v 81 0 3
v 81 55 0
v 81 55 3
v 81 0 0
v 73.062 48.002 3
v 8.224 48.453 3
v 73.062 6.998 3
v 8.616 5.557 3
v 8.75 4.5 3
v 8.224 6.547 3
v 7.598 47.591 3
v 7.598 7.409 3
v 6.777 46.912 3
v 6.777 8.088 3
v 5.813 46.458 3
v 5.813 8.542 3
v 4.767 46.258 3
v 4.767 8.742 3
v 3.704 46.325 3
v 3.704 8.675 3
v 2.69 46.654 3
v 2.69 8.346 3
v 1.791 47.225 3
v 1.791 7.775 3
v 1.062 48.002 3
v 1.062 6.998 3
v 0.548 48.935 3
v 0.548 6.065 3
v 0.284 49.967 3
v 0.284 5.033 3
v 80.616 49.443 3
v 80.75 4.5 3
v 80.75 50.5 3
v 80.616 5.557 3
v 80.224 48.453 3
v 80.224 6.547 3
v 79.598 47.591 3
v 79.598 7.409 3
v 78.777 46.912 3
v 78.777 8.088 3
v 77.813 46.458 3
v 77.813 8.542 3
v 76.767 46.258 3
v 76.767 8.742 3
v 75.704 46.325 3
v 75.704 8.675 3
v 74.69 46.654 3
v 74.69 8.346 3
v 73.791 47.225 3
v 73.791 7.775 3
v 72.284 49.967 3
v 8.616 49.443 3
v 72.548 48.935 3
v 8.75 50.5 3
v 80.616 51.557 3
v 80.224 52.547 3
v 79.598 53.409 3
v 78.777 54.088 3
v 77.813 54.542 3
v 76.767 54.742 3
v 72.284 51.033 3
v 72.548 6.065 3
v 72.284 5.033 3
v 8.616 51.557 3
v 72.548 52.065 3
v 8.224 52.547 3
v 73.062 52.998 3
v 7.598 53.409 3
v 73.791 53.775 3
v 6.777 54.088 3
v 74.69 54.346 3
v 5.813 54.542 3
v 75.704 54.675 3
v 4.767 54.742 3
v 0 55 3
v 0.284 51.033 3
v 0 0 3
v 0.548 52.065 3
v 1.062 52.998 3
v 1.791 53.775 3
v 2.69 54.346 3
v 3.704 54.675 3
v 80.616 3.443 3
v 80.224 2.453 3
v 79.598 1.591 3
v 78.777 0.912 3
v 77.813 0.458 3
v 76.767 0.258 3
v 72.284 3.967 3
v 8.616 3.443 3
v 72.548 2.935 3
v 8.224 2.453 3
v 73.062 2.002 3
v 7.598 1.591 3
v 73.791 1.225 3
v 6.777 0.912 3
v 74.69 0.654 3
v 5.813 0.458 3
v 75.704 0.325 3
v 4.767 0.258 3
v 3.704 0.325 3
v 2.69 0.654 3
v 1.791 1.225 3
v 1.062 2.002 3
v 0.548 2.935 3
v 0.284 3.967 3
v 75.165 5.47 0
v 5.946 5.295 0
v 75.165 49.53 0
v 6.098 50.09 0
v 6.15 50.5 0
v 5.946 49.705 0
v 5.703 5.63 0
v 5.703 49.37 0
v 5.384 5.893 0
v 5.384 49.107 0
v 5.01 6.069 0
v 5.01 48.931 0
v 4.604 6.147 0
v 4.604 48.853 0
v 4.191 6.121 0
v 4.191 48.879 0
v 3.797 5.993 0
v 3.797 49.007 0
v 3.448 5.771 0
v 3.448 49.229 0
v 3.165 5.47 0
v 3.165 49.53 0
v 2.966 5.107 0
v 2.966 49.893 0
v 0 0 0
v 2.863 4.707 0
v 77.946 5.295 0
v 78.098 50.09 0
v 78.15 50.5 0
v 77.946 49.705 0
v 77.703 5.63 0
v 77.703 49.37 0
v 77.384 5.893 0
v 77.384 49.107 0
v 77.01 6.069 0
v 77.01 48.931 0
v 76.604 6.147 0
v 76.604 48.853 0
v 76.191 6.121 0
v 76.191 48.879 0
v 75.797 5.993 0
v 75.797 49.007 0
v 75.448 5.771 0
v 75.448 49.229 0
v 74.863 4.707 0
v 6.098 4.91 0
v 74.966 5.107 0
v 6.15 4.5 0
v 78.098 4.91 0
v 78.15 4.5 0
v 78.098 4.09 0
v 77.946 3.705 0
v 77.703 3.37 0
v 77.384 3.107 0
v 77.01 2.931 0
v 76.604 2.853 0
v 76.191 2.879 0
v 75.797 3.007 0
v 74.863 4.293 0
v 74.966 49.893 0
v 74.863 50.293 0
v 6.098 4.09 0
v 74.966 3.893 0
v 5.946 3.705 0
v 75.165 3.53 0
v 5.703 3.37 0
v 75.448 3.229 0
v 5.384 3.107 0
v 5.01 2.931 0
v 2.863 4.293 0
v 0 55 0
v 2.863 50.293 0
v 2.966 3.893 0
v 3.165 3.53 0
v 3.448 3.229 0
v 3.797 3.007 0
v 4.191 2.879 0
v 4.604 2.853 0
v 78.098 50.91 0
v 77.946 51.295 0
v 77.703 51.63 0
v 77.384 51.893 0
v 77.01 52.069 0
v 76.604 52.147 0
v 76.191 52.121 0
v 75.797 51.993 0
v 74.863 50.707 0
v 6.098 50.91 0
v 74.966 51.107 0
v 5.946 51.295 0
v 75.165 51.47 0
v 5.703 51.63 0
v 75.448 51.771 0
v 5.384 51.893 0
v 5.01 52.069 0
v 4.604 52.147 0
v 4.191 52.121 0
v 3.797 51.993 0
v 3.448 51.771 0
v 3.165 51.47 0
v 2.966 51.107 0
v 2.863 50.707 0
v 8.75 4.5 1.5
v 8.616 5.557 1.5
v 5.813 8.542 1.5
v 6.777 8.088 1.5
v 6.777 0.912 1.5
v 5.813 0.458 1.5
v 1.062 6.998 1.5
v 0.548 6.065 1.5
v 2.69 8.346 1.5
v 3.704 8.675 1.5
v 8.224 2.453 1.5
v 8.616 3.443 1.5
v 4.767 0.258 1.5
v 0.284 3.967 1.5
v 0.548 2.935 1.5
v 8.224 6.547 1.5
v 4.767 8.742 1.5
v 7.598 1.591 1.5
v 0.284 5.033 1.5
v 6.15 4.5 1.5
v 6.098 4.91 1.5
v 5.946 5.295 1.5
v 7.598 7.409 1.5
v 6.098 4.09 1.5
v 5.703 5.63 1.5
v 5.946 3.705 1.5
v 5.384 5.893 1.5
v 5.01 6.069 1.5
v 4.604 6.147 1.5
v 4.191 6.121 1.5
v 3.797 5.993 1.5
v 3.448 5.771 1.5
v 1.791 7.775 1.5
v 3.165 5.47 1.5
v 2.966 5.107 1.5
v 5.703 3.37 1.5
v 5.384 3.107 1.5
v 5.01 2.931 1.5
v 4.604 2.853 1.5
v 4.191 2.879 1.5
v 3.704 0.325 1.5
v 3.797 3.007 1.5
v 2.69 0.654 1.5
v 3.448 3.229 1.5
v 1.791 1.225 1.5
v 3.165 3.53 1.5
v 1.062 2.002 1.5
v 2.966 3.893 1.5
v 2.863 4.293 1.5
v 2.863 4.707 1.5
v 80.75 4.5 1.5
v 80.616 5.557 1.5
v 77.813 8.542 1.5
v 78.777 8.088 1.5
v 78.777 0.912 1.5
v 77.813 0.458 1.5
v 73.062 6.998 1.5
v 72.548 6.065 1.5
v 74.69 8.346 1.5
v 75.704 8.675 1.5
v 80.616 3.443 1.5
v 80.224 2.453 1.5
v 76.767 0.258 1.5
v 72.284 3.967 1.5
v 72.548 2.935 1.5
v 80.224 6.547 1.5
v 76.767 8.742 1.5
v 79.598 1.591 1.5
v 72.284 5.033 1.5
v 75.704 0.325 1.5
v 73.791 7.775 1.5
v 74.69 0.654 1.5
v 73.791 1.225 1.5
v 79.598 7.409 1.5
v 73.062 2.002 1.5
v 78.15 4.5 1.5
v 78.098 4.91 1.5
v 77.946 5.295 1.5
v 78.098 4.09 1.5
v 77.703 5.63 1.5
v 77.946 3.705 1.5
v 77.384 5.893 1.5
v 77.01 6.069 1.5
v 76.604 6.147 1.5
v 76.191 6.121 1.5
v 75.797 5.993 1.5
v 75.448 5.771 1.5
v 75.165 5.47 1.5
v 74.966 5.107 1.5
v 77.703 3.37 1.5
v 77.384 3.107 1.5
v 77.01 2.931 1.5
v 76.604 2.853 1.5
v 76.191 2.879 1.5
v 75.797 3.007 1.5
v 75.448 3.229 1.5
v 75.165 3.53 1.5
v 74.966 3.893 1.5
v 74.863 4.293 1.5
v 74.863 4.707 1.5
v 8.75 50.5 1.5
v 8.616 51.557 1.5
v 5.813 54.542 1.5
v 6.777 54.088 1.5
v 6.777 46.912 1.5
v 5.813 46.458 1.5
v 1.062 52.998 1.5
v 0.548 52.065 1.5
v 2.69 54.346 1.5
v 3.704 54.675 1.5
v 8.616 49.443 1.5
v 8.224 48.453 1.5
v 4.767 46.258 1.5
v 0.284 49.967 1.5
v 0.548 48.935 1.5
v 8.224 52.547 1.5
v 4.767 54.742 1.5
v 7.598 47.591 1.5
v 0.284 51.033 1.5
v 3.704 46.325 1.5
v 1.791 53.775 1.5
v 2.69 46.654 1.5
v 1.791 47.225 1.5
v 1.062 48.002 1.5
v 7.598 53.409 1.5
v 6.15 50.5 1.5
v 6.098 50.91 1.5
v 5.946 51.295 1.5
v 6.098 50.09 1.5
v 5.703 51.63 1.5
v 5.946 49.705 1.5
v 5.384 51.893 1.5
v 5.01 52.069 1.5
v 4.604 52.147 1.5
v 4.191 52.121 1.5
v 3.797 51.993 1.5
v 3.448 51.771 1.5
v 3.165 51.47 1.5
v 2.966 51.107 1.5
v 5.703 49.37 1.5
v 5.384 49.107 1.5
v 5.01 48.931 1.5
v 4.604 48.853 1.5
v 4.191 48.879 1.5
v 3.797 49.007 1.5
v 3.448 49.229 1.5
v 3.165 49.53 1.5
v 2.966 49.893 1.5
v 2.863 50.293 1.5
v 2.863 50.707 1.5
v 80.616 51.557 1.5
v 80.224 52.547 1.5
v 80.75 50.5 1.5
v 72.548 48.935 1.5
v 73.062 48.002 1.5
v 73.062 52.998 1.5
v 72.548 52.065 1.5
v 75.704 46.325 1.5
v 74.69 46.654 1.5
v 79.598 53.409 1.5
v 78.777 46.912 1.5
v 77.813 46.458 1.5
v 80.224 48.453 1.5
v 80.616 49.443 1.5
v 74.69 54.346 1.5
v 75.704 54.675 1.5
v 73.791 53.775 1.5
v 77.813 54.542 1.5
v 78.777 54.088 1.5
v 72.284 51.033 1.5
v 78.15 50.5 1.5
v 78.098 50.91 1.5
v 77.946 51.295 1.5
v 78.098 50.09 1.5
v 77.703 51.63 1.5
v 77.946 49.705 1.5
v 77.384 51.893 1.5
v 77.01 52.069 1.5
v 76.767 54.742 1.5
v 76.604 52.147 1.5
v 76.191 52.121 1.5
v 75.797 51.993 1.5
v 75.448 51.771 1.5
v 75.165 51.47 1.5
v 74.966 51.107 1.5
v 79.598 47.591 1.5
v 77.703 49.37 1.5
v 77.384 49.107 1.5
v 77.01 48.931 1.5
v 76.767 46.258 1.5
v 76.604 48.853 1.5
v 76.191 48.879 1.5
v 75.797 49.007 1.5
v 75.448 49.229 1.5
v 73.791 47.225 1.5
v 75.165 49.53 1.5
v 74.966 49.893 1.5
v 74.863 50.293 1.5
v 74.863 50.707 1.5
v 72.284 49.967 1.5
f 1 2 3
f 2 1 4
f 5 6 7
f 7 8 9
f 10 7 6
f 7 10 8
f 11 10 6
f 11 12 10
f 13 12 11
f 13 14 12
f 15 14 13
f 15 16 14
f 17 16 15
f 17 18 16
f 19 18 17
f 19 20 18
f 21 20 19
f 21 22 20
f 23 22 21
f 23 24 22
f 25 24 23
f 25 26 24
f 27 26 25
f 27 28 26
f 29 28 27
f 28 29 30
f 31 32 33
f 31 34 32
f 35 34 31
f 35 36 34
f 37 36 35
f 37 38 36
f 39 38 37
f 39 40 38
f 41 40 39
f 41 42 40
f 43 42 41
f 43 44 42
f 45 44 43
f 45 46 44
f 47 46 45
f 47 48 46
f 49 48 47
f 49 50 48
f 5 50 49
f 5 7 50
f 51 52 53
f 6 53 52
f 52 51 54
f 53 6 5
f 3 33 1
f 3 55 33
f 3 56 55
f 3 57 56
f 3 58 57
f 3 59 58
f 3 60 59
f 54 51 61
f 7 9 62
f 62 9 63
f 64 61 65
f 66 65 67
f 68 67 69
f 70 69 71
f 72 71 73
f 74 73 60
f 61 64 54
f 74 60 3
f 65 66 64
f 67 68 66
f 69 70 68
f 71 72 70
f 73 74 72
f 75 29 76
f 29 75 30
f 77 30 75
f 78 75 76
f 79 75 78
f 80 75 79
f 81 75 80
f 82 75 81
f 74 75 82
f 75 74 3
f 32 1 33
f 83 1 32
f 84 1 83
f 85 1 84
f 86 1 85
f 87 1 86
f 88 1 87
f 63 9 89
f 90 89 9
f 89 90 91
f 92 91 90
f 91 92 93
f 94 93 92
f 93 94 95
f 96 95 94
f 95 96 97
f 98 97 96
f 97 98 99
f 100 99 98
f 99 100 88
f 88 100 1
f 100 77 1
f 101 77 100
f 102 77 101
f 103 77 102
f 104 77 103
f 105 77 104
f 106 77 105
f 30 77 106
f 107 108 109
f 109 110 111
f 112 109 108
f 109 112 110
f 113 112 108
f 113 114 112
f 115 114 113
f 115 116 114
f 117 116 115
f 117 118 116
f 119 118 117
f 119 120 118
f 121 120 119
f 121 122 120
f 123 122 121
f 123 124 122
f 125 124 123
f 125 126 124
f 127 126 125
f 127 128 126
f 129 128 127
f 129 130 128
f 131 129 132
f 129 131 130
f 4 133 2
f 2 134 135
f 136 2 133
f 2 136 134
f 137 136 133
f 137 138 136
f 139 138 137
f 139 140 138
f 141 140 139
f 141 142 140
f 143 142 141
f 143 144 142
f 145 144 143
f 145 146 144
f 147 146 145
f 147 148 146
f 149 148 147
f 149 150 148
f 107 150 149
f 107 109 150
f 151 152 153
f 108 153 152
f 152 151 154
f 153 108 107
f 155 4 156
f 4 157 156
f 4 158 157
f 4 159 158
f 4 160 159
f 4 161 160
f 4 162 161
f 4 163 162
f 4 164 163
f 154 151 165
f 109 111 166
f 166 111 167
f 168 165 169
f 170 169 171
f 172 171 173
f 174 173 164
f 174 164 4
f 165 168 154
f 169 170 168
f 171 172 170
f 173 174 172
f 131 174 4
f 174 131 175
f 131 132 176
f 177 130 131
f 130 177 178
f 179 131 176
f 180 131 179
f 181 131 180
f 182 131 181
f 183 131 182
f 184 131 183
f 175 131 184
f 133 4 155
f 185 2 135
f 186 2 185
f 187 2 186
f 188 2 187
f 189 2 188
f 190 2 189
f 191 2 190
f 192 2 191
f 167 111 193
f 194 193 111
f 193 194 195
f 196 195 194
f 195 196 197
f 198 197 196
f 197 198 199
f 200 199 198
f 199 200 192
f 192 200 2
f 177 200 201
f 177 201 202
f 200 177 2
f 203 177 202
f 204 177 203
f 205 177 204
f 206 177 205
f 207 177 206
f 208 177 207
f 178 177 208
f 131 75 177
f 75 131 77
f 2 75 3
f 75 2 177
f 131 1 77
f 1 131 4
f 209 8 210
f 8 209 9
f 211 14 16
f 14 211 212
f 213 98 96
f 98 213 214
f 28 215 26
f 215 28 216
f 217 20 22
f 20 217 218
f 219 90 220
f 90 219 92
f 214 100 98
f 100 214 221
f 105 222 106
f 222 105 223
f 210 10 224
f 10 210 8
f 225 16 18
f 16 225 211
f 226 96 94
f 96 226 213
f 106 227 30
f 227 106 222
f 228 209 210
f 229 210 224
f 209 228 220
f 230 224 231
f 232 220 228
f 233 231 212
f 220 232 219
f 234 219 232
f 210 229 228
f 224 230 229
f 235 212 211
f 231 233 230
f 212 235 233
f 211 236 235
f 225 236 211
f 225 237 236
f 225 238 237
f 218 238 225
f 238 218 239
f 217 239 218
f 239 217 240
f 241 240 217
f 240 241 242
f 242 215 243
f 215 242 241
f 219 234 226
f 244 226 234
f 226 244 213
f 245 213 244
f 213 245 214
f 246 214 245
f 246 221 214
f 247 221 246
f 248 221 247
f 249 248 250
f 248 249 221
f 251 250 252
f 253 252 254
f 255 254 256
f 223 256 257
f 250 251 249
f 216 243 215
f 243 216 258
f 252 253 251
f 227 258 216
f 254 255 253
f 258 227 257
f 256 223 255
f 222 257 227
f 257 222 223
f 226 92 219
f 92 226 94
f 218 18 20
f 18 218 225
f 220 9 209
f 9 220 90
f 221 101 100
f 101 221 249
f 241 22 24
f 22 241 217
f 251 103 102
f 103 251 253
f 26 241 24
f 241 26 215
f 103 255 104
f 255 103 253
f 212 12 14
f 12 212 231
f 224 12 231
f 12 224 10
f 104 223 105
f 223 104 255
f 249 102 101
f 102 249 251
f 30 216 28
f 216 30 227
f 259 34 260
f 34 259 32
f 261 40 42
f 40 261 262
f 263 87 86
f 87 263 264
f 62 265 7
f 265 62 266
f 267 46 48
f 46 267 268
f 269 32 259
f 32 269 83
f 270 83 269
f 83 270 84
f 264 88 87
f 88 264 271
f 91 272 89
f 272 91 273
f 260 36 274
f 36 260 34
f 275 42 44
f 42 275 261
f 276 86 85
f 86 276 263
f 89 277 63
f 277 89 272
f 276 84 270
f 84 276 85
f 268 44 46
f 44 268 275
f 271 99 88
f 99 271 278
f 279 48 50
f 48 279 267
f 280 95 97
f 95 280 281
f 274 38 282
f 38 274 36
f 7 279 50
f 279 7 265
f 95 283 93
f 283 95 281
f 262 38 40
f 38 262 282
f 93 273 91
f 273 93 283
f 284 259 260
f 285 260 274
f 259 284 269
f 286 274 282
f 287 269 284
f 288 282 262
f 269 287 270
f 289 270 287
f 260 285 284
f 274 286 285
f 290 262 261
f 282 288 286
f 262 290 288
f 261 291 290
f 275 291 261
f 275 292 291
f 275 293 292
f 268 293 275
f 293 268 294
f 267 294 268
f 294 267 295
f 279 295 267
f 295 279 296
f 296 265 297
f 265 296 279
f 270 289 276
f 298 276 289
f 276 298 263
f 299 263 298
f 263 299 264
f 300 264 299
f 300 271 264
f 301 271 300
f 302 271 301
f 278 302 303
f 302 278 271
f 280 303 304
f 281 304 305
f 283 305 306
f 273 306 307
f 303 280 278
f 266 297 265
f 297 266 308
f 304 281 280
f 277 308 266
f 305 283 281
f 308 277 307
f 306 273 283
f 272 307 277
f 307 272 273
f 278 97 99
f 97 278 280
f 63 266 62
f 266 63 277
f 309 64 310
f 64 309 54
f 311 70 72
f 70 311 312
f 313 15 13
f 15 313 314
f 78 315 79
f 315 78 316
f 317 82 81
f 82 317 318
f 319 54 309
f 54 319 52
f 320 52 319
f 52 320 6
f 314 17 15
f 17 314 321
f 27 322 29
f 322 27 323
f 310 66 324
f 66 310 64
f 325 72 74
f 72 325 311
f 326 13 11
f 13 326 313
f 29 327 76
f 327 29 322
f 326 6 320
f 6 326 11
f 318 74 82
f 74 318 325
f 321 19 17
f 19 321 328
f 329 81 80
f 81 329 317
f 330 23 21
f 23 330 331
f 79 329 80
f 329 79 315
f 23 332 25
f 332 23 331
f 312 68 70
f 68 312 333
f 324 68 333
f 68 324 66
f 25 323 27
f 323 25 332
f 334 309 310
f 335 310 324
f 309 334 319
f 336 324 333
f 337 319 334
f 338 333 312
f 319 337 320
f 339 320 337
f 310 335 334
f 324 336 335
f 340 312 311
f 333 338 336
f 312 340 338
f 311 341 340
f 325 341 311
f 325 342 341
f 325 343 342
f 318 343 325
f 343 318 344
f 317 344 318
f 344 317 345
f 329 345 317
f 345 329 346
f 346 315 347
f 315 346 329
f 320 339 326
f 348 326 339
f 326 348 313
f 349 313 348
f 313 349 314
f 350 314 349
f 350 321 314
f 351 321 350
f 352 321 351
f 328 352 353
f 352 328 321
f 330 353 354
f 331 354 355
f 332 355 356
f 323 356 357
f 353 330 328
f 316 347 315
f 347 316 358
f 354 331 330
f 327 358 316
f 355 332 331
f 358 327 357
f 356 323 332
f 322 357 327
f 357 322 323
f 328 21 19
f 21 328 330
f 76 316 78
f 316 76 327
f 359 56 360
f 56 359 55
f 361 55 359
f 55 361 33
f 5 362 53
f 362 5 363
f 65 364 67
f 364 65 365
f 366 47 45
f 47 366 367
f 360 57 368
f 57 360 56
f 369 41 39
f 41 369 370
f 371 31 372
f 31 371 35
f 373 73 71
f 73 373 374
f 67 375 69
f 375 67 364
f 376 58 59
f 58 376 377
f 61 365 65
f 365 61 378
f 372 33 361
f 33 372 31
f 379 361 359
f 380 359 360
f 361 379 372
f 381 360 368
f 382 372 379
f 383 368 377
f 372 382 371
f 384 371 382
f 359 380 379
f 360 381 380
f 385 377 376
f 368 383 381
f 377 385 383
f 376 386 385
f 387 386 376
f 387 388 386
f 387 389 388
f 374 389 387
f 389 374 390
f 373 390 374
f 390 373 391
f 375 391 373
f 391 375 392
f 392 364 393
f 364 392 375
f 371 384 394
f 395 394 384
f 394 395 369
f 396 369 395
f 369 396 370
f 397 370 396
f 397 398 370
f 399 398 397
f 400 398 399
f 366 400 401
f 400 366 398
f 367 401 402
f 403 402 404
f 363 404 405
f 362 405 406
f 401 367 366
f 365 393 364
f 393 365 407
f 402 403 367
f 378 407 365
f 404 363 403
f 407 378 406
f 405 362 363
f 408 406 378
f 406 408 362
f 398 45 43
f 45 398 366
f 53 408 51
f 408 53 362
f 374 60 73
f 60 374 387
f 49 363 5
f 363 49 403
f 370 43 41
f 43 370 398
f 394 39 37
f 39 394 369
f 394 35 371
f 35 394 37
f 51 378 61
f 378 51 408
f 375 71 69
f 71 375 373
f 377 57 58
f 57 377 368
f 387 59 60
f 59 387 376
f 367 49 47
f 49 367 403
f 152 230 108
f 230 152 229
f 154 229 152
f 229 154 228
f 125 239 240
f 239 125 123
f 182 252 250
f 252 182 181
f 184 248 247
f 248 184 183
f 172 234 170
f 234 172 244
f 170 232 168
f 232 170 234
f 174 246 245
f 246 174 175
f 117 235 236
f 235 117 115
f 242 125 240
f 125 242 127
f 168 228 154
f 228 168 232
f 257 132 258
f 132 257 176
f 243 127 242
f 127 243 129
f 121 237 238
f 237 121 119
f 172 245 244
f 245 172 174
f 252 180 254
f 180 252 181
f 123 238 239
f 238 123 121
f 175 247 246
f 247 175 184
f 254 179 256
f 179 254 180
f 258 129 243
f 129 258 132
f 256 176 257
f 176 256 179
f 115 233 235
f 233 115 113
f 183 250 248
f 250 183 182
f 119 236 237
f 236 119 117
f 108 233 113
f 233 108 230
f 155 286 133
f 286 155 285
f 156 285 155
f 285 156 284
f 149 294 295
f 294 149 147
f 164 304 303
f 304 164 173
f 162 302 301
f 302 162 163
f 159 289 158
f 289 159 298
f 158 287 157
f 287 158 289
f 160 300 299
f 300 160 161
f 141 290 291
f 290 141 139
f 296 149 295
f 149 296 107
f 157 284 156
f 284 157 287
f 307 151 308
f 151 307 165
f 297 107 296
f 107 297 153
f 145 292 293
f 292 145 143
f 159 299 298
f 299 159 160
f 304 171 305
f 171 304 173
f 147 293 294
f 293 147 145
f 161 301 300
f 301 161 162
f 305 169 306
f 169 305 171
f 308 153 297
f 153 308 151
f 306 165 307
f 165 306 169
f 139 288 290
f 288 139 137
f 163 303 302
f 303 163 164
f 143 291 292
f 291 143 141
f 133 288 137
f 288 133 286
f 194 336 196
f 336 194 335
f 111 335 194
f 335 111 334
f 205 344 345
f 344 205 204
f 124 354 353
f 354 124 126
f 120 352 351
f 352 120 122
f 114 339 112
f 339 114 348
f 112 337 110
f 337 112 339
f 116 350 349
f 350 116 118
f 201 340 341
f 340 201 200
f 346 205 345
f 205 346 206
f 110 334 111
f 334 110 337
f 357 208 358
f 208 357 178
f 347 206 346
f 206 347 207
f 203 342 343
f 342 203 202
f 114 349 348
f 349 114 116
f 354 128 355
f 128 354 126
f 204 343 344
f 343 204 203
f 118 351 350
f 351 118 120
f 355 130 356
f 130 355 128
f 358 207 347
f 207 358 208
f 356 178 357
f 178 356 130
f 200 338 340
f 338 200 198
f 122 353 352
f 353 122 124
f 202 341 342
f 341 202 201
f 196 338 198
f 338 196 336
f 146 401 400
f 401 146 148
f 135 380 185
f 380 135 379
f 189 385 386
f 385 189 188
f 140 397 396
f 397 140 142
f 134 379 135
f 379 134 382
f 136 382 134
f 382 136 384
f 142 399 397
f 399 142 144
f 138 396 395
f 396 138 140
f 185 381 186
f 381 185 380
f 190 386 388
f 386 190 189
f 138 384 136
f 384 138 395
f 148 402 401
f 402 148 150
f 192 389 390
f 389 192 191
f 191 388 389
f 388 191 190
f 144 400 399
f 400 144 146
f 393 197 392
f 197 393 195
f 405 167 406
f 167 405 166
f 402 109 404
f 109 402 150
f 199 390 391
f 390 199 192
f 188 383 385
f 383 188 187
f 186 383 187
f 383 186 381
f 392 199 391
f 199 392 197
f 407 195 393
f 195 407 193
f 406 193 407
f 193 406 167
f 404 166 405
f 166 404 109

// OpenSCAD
$fn=25;
l=81;
w=55;
h=3;

difference() {
    cube([l,w,h]);
    
    translate([4.5,4.5,1.5])
        cylinder(h=1.502,r=4.25);
    translate([l - 4.5,4.5,1.5])
        cylinder(h=1.502,r=4.25);
    translate([4.5,w - 4.5,1.5])
        cylinder(h=1.502,r=4.25);
    translate([l - 4.5,w - 4.5,1.5])
        cylinder(h=1.501,r=4.25);
    
    translate([4.5,4.5,-0.001])
        cylinder(h=1.502,r=1.65);
    translate([l - 4.5,4.5,-0.001])
        cylinder(h=1.502,r=1.65);
    translate([4.5,w - 4.5,-0.001])
        cylinder(h=1.502,r=1.65);
    translate([l - 4.5,w - 4.5,-0.001])
        cylinder(h=1.502,r=1.65);
}
